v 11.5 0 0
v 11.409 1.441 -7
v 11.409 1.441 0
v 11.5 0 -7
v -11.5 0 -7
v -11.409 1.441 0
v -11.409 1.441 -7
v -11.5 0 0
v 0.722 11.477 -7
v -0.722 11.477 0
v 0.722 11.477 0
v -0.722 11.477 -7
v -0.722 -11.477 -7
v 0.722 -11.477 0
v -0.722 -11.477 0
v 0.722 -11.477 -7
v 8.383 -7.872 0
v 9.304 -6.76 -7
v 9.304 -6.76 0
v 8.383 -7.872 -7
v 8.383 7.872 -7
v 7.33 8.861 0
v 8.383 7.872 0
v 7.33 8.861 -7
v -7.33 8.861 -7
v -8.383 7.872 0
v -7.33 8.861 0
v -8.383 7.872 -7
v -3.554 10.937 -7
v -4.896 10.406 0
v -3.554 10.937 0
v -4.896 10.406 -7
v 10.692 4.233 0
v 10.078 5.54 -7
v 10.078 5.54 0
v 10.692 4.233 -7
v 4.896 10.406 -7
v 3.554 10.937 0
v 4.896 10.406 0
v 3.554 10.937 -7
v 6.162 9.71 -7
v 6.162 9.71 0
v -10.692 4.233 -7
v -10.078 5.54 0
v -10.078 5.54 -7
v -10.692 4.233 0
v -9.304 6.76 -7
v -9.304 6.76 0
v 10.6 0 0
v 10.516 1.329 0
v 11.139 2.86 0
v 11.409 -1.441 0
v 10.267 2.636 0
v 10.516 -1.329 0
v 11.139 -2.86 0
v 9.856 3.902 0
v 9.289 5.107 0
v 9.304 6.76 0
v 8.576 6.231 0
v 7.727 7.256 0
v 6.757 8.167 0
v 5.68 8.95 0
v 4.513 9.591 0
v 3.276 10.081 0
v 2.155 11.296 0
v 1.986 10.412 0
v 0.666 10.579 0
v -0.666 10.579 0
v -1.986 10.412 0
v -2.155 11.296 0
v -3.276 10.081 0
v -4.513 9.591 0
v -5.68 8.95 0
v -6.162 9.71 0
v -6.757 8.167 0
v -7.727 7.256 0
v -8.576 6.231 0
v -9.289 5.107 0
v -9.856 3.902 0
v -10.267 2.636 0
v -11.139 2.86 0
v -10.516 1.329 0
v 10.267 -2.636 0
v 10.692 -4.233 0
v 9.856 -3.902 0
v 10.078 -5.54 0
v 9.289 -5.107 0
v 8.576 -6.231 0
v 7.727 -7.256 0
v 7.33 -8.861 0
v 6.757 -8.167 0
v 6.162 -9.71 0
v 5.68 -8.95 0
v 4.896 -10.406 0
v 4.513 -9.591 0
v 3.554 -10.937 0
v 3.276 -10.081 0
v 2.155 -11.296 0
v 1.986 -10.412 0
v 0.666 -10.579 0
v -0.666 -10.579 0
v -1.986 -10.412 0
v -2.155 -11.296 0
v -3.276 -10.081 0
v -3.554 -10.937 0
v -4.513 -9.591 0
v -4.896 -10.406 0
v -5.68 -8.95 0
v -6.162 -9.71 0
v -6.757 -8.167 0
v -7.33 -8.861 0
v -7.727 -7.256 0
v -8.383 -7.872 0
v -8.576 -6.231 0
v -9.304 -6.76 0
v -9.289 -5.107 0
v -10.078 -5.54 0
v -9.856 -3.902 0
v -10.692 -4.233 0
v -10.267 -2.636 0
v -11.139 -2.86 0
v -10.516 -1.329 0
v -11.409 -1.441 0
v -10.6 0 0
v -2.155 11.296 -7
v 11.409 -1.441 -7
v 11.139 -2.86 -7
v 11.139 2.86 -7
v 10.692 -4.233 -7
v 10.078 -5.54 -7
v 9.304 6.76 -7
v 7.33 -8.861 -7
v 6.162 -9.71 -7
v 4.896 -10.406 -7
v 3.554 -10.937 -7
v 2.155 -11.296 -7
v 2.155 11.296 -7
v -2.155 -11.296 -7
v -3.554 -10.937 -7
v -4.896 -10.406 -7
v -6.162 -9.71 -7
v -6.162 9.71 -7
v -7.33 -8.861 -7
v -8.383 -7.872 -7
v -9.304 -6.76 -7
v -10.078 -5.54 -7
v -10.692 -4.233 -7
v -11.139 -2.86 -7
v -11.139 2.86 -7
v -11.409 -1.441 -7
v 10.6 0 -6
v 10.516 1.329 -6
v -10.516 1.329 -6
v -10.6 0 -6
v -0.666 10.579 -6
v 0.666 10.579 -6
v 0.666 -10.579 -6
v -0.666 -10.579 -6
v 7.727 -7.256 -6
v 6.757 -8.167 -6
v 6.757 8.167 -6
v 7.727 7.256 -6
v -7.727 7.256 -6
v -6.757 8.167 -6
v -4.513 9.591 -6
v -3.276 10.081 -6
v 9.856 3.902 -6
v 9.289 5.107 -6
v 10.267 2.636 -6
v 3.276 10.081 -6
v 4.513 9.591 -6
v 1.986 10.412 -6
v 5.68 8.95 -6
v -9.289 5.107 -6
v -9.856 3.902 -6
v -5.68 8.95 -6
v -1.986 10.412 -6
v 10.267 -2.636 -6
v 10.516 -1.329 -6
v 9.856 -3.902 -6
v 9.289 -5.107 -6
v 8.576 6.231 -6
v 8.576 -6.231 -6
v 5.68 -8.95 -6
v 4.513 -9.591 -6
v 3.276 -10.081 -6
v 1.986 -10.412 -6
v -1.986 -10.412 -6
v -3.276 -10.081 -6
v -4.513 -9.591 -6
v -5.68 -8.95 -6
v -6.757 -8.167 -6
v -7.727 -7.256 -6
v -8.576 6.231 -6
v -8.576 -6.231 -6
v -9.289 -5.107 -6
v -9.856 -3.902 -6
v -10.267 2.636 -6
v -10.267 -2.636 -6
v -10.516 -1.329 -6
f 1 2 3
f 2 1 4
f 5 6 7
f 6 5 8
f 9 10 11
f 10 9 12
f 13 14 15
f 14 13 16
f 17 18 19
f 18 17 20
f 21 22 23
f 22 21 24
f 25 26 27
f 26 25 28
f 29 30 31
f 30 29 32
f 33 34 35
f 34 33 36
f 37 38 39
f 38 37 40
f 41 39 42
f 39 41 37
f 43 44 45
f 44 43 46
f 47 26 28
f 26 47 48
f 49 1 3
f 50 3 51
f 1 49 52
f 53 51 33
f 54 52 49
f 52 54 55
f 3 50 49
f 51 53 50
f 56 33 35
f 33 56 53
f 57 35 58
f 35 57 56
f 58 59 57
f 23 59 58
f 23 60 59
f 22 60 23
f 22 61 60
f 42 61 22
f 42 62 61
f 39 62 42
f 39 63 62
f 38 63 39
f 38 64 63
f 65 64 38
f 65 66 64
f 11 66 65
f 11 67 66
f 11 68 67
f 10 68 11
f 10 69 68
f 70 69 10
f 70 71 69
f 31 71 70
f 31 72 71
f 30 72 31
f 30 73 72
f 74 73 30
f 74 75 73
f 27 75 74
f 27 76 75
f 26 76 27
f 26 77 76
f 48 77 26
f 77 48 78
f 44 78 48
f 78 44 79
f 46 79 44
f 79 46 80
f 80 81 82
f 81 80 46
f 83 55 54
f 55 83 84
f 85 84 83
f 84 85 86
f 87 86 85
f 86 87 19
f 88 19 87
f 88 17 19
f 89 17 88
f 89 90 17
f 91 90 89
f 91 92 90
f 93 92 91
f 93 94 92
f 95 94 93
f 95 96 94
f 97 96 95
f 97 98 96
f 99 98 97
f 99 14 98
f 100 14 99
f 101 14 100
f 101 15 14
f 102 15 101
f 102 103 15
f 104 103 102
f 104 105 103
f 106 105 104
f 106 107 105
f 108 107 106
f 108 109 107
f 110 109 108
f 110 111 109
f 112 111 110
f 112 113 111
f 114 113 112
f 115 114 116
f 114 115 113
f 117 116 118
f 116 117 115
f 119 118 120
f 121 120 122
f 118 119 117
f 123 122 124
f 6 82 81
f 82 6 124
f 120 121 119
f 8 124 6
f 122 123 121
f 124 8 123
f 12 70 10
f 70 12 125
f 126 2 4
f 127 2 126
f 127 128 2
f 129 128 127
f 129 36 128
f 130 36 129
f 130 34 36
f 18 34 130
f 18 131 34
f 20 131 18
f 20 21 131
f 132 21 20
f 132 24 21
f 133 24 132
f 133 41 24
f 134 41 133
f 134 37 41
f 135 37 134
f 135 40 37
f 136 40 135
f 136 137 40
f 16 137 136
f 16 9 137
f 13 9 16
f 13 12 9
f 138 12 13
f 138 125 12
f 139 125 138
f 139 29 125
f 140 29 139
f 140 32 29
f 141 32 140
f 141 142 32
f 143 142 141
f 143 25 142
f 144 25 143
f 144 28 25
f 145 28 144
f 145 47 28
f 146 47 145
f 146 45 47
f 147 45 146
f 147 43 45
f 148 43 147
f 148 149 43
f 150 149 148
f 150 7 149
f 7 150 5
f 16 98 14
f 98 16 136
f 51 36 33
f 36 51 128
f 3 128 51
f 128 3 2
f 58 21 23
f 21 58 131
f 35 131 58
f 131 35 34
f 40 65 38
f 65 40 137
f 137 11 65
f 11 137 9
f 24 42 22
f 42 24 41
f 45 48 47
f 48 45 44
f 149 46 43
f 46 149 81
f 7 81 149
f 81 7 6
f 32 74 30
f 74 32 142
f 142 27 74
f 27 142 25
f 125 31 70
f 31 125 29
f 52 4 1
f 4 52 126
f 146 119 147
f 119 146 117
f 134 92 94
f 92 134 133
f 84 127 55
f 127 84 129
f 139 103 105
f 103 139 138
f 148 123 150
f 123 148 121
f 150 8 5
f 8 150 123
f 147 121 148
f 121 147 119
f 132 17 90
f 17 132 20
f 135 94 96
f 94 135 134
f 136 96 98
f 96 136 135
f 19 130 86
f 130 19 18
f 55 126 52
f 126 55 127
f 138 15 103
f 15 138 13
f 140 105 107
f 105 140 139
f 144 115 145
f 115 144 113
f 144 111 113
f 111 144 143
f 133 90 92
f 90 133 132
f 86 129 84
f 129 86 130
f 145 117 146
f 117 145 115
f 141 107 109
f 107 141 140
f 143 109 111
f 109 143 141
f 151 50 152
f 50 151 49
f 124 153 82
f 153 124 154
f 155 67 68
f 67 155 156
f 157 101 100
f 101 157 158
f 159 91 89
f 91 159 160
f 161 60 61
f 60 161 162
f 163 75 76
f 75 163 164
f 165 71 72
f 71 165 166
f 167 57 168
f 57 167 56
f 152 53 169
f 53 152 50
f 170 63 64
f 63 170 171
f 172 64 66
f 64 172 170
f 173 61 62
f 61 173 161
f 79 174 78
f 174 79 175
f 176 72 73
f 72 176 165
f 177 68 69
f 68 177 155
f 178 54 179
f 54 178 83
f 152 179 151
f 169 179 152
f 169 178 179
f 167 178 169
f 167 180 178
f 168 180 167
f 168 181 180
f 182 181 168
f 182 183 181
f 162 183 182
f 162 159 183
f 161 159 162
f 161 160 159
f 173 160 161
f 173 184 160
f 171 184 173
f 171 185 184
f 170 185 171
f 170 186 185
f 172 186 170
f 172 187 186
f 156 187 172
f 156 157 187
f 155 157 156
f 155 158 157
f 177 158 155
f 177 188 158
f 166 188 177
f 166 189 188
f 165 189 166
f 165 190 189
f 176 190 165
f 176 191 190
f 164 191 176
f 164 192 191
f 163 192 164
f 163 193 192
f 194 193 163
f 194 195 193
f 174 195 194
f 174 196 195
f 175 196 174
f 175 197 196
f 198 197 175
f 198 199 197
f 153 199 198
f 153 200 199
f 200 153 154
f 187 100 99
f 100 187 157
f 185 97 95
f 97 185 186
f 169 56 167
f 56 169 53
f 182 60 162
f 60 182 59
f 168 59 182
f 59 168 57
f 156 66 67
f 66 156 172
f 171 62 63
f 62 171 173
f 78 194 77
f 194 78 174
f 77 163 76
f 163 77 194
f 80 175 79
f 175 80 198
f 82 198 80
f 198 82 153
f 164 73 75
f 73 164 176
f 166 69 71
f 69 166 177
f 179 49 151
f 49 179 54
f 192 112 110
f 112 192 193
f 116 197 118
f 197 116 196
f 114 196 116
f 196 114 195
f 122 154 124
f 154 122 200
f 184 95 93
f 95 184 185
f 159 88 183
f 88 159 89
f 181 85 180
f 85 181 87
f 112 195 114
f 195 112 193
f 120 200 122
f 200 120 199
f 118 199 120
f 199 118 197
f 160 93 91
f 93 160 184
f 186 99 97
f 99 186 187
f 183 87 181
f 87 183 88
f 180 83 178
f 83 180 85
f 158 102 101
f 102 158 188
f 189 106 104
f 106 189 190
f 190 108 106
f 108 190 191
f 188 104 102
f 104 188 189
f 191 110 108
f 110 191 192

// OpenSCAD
$fn = 50;


difference() {
	union() {
		translate(v = [0, 0, -7.0000000000]) {
			cylinder(h = 7, r = 11.5000000000);
		}
	}
	union() {
		#translate(v = [0, 0, -6.0000000000]) {
			cylinder(h = 6, r = 10.6000000000);
		}
	}
}
